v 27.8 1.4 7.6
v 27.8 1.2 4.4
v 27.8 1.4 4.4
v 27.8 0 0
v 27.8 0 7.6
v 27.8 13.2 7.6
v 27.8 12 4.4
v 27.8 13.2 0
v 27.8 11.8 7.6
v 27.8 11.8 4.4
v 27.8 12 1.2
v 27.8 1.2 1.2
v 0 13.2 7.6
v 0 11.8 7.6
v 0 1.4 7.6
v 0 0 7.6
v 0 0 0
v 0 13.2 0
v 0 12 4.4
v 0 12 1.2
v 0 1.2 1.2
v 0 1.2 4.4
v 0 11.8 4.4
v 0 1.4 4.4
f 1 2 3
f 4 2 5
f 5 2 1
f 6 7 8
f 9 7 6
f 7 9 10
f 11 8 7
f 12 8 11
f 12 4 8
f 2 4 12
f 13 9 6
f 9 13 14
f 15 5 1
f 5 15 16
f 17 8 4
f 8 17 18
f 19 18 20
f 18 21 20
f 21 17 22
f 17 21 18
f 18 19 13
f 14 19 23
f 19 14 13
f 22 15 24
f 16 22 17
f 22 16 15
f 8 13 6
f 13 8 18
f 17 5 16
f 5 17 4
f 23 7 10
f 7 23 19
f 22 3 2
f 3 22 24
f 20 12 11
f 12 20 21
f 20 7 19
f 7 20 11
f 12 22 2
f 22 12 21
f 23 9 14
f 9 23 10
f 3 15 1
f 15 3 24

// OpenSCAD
length = 27.8;
width = 10.8;
height = 3.2;
wall = 1.2;

difference() {
    cube([length, width+2*wall, wall+2*height]);
    translate([0, wall, wall])
        cube([length, width, height]);
    translate([0, wall+0.2, wall+height])
        cube([length, width-0.4, height]);
}
